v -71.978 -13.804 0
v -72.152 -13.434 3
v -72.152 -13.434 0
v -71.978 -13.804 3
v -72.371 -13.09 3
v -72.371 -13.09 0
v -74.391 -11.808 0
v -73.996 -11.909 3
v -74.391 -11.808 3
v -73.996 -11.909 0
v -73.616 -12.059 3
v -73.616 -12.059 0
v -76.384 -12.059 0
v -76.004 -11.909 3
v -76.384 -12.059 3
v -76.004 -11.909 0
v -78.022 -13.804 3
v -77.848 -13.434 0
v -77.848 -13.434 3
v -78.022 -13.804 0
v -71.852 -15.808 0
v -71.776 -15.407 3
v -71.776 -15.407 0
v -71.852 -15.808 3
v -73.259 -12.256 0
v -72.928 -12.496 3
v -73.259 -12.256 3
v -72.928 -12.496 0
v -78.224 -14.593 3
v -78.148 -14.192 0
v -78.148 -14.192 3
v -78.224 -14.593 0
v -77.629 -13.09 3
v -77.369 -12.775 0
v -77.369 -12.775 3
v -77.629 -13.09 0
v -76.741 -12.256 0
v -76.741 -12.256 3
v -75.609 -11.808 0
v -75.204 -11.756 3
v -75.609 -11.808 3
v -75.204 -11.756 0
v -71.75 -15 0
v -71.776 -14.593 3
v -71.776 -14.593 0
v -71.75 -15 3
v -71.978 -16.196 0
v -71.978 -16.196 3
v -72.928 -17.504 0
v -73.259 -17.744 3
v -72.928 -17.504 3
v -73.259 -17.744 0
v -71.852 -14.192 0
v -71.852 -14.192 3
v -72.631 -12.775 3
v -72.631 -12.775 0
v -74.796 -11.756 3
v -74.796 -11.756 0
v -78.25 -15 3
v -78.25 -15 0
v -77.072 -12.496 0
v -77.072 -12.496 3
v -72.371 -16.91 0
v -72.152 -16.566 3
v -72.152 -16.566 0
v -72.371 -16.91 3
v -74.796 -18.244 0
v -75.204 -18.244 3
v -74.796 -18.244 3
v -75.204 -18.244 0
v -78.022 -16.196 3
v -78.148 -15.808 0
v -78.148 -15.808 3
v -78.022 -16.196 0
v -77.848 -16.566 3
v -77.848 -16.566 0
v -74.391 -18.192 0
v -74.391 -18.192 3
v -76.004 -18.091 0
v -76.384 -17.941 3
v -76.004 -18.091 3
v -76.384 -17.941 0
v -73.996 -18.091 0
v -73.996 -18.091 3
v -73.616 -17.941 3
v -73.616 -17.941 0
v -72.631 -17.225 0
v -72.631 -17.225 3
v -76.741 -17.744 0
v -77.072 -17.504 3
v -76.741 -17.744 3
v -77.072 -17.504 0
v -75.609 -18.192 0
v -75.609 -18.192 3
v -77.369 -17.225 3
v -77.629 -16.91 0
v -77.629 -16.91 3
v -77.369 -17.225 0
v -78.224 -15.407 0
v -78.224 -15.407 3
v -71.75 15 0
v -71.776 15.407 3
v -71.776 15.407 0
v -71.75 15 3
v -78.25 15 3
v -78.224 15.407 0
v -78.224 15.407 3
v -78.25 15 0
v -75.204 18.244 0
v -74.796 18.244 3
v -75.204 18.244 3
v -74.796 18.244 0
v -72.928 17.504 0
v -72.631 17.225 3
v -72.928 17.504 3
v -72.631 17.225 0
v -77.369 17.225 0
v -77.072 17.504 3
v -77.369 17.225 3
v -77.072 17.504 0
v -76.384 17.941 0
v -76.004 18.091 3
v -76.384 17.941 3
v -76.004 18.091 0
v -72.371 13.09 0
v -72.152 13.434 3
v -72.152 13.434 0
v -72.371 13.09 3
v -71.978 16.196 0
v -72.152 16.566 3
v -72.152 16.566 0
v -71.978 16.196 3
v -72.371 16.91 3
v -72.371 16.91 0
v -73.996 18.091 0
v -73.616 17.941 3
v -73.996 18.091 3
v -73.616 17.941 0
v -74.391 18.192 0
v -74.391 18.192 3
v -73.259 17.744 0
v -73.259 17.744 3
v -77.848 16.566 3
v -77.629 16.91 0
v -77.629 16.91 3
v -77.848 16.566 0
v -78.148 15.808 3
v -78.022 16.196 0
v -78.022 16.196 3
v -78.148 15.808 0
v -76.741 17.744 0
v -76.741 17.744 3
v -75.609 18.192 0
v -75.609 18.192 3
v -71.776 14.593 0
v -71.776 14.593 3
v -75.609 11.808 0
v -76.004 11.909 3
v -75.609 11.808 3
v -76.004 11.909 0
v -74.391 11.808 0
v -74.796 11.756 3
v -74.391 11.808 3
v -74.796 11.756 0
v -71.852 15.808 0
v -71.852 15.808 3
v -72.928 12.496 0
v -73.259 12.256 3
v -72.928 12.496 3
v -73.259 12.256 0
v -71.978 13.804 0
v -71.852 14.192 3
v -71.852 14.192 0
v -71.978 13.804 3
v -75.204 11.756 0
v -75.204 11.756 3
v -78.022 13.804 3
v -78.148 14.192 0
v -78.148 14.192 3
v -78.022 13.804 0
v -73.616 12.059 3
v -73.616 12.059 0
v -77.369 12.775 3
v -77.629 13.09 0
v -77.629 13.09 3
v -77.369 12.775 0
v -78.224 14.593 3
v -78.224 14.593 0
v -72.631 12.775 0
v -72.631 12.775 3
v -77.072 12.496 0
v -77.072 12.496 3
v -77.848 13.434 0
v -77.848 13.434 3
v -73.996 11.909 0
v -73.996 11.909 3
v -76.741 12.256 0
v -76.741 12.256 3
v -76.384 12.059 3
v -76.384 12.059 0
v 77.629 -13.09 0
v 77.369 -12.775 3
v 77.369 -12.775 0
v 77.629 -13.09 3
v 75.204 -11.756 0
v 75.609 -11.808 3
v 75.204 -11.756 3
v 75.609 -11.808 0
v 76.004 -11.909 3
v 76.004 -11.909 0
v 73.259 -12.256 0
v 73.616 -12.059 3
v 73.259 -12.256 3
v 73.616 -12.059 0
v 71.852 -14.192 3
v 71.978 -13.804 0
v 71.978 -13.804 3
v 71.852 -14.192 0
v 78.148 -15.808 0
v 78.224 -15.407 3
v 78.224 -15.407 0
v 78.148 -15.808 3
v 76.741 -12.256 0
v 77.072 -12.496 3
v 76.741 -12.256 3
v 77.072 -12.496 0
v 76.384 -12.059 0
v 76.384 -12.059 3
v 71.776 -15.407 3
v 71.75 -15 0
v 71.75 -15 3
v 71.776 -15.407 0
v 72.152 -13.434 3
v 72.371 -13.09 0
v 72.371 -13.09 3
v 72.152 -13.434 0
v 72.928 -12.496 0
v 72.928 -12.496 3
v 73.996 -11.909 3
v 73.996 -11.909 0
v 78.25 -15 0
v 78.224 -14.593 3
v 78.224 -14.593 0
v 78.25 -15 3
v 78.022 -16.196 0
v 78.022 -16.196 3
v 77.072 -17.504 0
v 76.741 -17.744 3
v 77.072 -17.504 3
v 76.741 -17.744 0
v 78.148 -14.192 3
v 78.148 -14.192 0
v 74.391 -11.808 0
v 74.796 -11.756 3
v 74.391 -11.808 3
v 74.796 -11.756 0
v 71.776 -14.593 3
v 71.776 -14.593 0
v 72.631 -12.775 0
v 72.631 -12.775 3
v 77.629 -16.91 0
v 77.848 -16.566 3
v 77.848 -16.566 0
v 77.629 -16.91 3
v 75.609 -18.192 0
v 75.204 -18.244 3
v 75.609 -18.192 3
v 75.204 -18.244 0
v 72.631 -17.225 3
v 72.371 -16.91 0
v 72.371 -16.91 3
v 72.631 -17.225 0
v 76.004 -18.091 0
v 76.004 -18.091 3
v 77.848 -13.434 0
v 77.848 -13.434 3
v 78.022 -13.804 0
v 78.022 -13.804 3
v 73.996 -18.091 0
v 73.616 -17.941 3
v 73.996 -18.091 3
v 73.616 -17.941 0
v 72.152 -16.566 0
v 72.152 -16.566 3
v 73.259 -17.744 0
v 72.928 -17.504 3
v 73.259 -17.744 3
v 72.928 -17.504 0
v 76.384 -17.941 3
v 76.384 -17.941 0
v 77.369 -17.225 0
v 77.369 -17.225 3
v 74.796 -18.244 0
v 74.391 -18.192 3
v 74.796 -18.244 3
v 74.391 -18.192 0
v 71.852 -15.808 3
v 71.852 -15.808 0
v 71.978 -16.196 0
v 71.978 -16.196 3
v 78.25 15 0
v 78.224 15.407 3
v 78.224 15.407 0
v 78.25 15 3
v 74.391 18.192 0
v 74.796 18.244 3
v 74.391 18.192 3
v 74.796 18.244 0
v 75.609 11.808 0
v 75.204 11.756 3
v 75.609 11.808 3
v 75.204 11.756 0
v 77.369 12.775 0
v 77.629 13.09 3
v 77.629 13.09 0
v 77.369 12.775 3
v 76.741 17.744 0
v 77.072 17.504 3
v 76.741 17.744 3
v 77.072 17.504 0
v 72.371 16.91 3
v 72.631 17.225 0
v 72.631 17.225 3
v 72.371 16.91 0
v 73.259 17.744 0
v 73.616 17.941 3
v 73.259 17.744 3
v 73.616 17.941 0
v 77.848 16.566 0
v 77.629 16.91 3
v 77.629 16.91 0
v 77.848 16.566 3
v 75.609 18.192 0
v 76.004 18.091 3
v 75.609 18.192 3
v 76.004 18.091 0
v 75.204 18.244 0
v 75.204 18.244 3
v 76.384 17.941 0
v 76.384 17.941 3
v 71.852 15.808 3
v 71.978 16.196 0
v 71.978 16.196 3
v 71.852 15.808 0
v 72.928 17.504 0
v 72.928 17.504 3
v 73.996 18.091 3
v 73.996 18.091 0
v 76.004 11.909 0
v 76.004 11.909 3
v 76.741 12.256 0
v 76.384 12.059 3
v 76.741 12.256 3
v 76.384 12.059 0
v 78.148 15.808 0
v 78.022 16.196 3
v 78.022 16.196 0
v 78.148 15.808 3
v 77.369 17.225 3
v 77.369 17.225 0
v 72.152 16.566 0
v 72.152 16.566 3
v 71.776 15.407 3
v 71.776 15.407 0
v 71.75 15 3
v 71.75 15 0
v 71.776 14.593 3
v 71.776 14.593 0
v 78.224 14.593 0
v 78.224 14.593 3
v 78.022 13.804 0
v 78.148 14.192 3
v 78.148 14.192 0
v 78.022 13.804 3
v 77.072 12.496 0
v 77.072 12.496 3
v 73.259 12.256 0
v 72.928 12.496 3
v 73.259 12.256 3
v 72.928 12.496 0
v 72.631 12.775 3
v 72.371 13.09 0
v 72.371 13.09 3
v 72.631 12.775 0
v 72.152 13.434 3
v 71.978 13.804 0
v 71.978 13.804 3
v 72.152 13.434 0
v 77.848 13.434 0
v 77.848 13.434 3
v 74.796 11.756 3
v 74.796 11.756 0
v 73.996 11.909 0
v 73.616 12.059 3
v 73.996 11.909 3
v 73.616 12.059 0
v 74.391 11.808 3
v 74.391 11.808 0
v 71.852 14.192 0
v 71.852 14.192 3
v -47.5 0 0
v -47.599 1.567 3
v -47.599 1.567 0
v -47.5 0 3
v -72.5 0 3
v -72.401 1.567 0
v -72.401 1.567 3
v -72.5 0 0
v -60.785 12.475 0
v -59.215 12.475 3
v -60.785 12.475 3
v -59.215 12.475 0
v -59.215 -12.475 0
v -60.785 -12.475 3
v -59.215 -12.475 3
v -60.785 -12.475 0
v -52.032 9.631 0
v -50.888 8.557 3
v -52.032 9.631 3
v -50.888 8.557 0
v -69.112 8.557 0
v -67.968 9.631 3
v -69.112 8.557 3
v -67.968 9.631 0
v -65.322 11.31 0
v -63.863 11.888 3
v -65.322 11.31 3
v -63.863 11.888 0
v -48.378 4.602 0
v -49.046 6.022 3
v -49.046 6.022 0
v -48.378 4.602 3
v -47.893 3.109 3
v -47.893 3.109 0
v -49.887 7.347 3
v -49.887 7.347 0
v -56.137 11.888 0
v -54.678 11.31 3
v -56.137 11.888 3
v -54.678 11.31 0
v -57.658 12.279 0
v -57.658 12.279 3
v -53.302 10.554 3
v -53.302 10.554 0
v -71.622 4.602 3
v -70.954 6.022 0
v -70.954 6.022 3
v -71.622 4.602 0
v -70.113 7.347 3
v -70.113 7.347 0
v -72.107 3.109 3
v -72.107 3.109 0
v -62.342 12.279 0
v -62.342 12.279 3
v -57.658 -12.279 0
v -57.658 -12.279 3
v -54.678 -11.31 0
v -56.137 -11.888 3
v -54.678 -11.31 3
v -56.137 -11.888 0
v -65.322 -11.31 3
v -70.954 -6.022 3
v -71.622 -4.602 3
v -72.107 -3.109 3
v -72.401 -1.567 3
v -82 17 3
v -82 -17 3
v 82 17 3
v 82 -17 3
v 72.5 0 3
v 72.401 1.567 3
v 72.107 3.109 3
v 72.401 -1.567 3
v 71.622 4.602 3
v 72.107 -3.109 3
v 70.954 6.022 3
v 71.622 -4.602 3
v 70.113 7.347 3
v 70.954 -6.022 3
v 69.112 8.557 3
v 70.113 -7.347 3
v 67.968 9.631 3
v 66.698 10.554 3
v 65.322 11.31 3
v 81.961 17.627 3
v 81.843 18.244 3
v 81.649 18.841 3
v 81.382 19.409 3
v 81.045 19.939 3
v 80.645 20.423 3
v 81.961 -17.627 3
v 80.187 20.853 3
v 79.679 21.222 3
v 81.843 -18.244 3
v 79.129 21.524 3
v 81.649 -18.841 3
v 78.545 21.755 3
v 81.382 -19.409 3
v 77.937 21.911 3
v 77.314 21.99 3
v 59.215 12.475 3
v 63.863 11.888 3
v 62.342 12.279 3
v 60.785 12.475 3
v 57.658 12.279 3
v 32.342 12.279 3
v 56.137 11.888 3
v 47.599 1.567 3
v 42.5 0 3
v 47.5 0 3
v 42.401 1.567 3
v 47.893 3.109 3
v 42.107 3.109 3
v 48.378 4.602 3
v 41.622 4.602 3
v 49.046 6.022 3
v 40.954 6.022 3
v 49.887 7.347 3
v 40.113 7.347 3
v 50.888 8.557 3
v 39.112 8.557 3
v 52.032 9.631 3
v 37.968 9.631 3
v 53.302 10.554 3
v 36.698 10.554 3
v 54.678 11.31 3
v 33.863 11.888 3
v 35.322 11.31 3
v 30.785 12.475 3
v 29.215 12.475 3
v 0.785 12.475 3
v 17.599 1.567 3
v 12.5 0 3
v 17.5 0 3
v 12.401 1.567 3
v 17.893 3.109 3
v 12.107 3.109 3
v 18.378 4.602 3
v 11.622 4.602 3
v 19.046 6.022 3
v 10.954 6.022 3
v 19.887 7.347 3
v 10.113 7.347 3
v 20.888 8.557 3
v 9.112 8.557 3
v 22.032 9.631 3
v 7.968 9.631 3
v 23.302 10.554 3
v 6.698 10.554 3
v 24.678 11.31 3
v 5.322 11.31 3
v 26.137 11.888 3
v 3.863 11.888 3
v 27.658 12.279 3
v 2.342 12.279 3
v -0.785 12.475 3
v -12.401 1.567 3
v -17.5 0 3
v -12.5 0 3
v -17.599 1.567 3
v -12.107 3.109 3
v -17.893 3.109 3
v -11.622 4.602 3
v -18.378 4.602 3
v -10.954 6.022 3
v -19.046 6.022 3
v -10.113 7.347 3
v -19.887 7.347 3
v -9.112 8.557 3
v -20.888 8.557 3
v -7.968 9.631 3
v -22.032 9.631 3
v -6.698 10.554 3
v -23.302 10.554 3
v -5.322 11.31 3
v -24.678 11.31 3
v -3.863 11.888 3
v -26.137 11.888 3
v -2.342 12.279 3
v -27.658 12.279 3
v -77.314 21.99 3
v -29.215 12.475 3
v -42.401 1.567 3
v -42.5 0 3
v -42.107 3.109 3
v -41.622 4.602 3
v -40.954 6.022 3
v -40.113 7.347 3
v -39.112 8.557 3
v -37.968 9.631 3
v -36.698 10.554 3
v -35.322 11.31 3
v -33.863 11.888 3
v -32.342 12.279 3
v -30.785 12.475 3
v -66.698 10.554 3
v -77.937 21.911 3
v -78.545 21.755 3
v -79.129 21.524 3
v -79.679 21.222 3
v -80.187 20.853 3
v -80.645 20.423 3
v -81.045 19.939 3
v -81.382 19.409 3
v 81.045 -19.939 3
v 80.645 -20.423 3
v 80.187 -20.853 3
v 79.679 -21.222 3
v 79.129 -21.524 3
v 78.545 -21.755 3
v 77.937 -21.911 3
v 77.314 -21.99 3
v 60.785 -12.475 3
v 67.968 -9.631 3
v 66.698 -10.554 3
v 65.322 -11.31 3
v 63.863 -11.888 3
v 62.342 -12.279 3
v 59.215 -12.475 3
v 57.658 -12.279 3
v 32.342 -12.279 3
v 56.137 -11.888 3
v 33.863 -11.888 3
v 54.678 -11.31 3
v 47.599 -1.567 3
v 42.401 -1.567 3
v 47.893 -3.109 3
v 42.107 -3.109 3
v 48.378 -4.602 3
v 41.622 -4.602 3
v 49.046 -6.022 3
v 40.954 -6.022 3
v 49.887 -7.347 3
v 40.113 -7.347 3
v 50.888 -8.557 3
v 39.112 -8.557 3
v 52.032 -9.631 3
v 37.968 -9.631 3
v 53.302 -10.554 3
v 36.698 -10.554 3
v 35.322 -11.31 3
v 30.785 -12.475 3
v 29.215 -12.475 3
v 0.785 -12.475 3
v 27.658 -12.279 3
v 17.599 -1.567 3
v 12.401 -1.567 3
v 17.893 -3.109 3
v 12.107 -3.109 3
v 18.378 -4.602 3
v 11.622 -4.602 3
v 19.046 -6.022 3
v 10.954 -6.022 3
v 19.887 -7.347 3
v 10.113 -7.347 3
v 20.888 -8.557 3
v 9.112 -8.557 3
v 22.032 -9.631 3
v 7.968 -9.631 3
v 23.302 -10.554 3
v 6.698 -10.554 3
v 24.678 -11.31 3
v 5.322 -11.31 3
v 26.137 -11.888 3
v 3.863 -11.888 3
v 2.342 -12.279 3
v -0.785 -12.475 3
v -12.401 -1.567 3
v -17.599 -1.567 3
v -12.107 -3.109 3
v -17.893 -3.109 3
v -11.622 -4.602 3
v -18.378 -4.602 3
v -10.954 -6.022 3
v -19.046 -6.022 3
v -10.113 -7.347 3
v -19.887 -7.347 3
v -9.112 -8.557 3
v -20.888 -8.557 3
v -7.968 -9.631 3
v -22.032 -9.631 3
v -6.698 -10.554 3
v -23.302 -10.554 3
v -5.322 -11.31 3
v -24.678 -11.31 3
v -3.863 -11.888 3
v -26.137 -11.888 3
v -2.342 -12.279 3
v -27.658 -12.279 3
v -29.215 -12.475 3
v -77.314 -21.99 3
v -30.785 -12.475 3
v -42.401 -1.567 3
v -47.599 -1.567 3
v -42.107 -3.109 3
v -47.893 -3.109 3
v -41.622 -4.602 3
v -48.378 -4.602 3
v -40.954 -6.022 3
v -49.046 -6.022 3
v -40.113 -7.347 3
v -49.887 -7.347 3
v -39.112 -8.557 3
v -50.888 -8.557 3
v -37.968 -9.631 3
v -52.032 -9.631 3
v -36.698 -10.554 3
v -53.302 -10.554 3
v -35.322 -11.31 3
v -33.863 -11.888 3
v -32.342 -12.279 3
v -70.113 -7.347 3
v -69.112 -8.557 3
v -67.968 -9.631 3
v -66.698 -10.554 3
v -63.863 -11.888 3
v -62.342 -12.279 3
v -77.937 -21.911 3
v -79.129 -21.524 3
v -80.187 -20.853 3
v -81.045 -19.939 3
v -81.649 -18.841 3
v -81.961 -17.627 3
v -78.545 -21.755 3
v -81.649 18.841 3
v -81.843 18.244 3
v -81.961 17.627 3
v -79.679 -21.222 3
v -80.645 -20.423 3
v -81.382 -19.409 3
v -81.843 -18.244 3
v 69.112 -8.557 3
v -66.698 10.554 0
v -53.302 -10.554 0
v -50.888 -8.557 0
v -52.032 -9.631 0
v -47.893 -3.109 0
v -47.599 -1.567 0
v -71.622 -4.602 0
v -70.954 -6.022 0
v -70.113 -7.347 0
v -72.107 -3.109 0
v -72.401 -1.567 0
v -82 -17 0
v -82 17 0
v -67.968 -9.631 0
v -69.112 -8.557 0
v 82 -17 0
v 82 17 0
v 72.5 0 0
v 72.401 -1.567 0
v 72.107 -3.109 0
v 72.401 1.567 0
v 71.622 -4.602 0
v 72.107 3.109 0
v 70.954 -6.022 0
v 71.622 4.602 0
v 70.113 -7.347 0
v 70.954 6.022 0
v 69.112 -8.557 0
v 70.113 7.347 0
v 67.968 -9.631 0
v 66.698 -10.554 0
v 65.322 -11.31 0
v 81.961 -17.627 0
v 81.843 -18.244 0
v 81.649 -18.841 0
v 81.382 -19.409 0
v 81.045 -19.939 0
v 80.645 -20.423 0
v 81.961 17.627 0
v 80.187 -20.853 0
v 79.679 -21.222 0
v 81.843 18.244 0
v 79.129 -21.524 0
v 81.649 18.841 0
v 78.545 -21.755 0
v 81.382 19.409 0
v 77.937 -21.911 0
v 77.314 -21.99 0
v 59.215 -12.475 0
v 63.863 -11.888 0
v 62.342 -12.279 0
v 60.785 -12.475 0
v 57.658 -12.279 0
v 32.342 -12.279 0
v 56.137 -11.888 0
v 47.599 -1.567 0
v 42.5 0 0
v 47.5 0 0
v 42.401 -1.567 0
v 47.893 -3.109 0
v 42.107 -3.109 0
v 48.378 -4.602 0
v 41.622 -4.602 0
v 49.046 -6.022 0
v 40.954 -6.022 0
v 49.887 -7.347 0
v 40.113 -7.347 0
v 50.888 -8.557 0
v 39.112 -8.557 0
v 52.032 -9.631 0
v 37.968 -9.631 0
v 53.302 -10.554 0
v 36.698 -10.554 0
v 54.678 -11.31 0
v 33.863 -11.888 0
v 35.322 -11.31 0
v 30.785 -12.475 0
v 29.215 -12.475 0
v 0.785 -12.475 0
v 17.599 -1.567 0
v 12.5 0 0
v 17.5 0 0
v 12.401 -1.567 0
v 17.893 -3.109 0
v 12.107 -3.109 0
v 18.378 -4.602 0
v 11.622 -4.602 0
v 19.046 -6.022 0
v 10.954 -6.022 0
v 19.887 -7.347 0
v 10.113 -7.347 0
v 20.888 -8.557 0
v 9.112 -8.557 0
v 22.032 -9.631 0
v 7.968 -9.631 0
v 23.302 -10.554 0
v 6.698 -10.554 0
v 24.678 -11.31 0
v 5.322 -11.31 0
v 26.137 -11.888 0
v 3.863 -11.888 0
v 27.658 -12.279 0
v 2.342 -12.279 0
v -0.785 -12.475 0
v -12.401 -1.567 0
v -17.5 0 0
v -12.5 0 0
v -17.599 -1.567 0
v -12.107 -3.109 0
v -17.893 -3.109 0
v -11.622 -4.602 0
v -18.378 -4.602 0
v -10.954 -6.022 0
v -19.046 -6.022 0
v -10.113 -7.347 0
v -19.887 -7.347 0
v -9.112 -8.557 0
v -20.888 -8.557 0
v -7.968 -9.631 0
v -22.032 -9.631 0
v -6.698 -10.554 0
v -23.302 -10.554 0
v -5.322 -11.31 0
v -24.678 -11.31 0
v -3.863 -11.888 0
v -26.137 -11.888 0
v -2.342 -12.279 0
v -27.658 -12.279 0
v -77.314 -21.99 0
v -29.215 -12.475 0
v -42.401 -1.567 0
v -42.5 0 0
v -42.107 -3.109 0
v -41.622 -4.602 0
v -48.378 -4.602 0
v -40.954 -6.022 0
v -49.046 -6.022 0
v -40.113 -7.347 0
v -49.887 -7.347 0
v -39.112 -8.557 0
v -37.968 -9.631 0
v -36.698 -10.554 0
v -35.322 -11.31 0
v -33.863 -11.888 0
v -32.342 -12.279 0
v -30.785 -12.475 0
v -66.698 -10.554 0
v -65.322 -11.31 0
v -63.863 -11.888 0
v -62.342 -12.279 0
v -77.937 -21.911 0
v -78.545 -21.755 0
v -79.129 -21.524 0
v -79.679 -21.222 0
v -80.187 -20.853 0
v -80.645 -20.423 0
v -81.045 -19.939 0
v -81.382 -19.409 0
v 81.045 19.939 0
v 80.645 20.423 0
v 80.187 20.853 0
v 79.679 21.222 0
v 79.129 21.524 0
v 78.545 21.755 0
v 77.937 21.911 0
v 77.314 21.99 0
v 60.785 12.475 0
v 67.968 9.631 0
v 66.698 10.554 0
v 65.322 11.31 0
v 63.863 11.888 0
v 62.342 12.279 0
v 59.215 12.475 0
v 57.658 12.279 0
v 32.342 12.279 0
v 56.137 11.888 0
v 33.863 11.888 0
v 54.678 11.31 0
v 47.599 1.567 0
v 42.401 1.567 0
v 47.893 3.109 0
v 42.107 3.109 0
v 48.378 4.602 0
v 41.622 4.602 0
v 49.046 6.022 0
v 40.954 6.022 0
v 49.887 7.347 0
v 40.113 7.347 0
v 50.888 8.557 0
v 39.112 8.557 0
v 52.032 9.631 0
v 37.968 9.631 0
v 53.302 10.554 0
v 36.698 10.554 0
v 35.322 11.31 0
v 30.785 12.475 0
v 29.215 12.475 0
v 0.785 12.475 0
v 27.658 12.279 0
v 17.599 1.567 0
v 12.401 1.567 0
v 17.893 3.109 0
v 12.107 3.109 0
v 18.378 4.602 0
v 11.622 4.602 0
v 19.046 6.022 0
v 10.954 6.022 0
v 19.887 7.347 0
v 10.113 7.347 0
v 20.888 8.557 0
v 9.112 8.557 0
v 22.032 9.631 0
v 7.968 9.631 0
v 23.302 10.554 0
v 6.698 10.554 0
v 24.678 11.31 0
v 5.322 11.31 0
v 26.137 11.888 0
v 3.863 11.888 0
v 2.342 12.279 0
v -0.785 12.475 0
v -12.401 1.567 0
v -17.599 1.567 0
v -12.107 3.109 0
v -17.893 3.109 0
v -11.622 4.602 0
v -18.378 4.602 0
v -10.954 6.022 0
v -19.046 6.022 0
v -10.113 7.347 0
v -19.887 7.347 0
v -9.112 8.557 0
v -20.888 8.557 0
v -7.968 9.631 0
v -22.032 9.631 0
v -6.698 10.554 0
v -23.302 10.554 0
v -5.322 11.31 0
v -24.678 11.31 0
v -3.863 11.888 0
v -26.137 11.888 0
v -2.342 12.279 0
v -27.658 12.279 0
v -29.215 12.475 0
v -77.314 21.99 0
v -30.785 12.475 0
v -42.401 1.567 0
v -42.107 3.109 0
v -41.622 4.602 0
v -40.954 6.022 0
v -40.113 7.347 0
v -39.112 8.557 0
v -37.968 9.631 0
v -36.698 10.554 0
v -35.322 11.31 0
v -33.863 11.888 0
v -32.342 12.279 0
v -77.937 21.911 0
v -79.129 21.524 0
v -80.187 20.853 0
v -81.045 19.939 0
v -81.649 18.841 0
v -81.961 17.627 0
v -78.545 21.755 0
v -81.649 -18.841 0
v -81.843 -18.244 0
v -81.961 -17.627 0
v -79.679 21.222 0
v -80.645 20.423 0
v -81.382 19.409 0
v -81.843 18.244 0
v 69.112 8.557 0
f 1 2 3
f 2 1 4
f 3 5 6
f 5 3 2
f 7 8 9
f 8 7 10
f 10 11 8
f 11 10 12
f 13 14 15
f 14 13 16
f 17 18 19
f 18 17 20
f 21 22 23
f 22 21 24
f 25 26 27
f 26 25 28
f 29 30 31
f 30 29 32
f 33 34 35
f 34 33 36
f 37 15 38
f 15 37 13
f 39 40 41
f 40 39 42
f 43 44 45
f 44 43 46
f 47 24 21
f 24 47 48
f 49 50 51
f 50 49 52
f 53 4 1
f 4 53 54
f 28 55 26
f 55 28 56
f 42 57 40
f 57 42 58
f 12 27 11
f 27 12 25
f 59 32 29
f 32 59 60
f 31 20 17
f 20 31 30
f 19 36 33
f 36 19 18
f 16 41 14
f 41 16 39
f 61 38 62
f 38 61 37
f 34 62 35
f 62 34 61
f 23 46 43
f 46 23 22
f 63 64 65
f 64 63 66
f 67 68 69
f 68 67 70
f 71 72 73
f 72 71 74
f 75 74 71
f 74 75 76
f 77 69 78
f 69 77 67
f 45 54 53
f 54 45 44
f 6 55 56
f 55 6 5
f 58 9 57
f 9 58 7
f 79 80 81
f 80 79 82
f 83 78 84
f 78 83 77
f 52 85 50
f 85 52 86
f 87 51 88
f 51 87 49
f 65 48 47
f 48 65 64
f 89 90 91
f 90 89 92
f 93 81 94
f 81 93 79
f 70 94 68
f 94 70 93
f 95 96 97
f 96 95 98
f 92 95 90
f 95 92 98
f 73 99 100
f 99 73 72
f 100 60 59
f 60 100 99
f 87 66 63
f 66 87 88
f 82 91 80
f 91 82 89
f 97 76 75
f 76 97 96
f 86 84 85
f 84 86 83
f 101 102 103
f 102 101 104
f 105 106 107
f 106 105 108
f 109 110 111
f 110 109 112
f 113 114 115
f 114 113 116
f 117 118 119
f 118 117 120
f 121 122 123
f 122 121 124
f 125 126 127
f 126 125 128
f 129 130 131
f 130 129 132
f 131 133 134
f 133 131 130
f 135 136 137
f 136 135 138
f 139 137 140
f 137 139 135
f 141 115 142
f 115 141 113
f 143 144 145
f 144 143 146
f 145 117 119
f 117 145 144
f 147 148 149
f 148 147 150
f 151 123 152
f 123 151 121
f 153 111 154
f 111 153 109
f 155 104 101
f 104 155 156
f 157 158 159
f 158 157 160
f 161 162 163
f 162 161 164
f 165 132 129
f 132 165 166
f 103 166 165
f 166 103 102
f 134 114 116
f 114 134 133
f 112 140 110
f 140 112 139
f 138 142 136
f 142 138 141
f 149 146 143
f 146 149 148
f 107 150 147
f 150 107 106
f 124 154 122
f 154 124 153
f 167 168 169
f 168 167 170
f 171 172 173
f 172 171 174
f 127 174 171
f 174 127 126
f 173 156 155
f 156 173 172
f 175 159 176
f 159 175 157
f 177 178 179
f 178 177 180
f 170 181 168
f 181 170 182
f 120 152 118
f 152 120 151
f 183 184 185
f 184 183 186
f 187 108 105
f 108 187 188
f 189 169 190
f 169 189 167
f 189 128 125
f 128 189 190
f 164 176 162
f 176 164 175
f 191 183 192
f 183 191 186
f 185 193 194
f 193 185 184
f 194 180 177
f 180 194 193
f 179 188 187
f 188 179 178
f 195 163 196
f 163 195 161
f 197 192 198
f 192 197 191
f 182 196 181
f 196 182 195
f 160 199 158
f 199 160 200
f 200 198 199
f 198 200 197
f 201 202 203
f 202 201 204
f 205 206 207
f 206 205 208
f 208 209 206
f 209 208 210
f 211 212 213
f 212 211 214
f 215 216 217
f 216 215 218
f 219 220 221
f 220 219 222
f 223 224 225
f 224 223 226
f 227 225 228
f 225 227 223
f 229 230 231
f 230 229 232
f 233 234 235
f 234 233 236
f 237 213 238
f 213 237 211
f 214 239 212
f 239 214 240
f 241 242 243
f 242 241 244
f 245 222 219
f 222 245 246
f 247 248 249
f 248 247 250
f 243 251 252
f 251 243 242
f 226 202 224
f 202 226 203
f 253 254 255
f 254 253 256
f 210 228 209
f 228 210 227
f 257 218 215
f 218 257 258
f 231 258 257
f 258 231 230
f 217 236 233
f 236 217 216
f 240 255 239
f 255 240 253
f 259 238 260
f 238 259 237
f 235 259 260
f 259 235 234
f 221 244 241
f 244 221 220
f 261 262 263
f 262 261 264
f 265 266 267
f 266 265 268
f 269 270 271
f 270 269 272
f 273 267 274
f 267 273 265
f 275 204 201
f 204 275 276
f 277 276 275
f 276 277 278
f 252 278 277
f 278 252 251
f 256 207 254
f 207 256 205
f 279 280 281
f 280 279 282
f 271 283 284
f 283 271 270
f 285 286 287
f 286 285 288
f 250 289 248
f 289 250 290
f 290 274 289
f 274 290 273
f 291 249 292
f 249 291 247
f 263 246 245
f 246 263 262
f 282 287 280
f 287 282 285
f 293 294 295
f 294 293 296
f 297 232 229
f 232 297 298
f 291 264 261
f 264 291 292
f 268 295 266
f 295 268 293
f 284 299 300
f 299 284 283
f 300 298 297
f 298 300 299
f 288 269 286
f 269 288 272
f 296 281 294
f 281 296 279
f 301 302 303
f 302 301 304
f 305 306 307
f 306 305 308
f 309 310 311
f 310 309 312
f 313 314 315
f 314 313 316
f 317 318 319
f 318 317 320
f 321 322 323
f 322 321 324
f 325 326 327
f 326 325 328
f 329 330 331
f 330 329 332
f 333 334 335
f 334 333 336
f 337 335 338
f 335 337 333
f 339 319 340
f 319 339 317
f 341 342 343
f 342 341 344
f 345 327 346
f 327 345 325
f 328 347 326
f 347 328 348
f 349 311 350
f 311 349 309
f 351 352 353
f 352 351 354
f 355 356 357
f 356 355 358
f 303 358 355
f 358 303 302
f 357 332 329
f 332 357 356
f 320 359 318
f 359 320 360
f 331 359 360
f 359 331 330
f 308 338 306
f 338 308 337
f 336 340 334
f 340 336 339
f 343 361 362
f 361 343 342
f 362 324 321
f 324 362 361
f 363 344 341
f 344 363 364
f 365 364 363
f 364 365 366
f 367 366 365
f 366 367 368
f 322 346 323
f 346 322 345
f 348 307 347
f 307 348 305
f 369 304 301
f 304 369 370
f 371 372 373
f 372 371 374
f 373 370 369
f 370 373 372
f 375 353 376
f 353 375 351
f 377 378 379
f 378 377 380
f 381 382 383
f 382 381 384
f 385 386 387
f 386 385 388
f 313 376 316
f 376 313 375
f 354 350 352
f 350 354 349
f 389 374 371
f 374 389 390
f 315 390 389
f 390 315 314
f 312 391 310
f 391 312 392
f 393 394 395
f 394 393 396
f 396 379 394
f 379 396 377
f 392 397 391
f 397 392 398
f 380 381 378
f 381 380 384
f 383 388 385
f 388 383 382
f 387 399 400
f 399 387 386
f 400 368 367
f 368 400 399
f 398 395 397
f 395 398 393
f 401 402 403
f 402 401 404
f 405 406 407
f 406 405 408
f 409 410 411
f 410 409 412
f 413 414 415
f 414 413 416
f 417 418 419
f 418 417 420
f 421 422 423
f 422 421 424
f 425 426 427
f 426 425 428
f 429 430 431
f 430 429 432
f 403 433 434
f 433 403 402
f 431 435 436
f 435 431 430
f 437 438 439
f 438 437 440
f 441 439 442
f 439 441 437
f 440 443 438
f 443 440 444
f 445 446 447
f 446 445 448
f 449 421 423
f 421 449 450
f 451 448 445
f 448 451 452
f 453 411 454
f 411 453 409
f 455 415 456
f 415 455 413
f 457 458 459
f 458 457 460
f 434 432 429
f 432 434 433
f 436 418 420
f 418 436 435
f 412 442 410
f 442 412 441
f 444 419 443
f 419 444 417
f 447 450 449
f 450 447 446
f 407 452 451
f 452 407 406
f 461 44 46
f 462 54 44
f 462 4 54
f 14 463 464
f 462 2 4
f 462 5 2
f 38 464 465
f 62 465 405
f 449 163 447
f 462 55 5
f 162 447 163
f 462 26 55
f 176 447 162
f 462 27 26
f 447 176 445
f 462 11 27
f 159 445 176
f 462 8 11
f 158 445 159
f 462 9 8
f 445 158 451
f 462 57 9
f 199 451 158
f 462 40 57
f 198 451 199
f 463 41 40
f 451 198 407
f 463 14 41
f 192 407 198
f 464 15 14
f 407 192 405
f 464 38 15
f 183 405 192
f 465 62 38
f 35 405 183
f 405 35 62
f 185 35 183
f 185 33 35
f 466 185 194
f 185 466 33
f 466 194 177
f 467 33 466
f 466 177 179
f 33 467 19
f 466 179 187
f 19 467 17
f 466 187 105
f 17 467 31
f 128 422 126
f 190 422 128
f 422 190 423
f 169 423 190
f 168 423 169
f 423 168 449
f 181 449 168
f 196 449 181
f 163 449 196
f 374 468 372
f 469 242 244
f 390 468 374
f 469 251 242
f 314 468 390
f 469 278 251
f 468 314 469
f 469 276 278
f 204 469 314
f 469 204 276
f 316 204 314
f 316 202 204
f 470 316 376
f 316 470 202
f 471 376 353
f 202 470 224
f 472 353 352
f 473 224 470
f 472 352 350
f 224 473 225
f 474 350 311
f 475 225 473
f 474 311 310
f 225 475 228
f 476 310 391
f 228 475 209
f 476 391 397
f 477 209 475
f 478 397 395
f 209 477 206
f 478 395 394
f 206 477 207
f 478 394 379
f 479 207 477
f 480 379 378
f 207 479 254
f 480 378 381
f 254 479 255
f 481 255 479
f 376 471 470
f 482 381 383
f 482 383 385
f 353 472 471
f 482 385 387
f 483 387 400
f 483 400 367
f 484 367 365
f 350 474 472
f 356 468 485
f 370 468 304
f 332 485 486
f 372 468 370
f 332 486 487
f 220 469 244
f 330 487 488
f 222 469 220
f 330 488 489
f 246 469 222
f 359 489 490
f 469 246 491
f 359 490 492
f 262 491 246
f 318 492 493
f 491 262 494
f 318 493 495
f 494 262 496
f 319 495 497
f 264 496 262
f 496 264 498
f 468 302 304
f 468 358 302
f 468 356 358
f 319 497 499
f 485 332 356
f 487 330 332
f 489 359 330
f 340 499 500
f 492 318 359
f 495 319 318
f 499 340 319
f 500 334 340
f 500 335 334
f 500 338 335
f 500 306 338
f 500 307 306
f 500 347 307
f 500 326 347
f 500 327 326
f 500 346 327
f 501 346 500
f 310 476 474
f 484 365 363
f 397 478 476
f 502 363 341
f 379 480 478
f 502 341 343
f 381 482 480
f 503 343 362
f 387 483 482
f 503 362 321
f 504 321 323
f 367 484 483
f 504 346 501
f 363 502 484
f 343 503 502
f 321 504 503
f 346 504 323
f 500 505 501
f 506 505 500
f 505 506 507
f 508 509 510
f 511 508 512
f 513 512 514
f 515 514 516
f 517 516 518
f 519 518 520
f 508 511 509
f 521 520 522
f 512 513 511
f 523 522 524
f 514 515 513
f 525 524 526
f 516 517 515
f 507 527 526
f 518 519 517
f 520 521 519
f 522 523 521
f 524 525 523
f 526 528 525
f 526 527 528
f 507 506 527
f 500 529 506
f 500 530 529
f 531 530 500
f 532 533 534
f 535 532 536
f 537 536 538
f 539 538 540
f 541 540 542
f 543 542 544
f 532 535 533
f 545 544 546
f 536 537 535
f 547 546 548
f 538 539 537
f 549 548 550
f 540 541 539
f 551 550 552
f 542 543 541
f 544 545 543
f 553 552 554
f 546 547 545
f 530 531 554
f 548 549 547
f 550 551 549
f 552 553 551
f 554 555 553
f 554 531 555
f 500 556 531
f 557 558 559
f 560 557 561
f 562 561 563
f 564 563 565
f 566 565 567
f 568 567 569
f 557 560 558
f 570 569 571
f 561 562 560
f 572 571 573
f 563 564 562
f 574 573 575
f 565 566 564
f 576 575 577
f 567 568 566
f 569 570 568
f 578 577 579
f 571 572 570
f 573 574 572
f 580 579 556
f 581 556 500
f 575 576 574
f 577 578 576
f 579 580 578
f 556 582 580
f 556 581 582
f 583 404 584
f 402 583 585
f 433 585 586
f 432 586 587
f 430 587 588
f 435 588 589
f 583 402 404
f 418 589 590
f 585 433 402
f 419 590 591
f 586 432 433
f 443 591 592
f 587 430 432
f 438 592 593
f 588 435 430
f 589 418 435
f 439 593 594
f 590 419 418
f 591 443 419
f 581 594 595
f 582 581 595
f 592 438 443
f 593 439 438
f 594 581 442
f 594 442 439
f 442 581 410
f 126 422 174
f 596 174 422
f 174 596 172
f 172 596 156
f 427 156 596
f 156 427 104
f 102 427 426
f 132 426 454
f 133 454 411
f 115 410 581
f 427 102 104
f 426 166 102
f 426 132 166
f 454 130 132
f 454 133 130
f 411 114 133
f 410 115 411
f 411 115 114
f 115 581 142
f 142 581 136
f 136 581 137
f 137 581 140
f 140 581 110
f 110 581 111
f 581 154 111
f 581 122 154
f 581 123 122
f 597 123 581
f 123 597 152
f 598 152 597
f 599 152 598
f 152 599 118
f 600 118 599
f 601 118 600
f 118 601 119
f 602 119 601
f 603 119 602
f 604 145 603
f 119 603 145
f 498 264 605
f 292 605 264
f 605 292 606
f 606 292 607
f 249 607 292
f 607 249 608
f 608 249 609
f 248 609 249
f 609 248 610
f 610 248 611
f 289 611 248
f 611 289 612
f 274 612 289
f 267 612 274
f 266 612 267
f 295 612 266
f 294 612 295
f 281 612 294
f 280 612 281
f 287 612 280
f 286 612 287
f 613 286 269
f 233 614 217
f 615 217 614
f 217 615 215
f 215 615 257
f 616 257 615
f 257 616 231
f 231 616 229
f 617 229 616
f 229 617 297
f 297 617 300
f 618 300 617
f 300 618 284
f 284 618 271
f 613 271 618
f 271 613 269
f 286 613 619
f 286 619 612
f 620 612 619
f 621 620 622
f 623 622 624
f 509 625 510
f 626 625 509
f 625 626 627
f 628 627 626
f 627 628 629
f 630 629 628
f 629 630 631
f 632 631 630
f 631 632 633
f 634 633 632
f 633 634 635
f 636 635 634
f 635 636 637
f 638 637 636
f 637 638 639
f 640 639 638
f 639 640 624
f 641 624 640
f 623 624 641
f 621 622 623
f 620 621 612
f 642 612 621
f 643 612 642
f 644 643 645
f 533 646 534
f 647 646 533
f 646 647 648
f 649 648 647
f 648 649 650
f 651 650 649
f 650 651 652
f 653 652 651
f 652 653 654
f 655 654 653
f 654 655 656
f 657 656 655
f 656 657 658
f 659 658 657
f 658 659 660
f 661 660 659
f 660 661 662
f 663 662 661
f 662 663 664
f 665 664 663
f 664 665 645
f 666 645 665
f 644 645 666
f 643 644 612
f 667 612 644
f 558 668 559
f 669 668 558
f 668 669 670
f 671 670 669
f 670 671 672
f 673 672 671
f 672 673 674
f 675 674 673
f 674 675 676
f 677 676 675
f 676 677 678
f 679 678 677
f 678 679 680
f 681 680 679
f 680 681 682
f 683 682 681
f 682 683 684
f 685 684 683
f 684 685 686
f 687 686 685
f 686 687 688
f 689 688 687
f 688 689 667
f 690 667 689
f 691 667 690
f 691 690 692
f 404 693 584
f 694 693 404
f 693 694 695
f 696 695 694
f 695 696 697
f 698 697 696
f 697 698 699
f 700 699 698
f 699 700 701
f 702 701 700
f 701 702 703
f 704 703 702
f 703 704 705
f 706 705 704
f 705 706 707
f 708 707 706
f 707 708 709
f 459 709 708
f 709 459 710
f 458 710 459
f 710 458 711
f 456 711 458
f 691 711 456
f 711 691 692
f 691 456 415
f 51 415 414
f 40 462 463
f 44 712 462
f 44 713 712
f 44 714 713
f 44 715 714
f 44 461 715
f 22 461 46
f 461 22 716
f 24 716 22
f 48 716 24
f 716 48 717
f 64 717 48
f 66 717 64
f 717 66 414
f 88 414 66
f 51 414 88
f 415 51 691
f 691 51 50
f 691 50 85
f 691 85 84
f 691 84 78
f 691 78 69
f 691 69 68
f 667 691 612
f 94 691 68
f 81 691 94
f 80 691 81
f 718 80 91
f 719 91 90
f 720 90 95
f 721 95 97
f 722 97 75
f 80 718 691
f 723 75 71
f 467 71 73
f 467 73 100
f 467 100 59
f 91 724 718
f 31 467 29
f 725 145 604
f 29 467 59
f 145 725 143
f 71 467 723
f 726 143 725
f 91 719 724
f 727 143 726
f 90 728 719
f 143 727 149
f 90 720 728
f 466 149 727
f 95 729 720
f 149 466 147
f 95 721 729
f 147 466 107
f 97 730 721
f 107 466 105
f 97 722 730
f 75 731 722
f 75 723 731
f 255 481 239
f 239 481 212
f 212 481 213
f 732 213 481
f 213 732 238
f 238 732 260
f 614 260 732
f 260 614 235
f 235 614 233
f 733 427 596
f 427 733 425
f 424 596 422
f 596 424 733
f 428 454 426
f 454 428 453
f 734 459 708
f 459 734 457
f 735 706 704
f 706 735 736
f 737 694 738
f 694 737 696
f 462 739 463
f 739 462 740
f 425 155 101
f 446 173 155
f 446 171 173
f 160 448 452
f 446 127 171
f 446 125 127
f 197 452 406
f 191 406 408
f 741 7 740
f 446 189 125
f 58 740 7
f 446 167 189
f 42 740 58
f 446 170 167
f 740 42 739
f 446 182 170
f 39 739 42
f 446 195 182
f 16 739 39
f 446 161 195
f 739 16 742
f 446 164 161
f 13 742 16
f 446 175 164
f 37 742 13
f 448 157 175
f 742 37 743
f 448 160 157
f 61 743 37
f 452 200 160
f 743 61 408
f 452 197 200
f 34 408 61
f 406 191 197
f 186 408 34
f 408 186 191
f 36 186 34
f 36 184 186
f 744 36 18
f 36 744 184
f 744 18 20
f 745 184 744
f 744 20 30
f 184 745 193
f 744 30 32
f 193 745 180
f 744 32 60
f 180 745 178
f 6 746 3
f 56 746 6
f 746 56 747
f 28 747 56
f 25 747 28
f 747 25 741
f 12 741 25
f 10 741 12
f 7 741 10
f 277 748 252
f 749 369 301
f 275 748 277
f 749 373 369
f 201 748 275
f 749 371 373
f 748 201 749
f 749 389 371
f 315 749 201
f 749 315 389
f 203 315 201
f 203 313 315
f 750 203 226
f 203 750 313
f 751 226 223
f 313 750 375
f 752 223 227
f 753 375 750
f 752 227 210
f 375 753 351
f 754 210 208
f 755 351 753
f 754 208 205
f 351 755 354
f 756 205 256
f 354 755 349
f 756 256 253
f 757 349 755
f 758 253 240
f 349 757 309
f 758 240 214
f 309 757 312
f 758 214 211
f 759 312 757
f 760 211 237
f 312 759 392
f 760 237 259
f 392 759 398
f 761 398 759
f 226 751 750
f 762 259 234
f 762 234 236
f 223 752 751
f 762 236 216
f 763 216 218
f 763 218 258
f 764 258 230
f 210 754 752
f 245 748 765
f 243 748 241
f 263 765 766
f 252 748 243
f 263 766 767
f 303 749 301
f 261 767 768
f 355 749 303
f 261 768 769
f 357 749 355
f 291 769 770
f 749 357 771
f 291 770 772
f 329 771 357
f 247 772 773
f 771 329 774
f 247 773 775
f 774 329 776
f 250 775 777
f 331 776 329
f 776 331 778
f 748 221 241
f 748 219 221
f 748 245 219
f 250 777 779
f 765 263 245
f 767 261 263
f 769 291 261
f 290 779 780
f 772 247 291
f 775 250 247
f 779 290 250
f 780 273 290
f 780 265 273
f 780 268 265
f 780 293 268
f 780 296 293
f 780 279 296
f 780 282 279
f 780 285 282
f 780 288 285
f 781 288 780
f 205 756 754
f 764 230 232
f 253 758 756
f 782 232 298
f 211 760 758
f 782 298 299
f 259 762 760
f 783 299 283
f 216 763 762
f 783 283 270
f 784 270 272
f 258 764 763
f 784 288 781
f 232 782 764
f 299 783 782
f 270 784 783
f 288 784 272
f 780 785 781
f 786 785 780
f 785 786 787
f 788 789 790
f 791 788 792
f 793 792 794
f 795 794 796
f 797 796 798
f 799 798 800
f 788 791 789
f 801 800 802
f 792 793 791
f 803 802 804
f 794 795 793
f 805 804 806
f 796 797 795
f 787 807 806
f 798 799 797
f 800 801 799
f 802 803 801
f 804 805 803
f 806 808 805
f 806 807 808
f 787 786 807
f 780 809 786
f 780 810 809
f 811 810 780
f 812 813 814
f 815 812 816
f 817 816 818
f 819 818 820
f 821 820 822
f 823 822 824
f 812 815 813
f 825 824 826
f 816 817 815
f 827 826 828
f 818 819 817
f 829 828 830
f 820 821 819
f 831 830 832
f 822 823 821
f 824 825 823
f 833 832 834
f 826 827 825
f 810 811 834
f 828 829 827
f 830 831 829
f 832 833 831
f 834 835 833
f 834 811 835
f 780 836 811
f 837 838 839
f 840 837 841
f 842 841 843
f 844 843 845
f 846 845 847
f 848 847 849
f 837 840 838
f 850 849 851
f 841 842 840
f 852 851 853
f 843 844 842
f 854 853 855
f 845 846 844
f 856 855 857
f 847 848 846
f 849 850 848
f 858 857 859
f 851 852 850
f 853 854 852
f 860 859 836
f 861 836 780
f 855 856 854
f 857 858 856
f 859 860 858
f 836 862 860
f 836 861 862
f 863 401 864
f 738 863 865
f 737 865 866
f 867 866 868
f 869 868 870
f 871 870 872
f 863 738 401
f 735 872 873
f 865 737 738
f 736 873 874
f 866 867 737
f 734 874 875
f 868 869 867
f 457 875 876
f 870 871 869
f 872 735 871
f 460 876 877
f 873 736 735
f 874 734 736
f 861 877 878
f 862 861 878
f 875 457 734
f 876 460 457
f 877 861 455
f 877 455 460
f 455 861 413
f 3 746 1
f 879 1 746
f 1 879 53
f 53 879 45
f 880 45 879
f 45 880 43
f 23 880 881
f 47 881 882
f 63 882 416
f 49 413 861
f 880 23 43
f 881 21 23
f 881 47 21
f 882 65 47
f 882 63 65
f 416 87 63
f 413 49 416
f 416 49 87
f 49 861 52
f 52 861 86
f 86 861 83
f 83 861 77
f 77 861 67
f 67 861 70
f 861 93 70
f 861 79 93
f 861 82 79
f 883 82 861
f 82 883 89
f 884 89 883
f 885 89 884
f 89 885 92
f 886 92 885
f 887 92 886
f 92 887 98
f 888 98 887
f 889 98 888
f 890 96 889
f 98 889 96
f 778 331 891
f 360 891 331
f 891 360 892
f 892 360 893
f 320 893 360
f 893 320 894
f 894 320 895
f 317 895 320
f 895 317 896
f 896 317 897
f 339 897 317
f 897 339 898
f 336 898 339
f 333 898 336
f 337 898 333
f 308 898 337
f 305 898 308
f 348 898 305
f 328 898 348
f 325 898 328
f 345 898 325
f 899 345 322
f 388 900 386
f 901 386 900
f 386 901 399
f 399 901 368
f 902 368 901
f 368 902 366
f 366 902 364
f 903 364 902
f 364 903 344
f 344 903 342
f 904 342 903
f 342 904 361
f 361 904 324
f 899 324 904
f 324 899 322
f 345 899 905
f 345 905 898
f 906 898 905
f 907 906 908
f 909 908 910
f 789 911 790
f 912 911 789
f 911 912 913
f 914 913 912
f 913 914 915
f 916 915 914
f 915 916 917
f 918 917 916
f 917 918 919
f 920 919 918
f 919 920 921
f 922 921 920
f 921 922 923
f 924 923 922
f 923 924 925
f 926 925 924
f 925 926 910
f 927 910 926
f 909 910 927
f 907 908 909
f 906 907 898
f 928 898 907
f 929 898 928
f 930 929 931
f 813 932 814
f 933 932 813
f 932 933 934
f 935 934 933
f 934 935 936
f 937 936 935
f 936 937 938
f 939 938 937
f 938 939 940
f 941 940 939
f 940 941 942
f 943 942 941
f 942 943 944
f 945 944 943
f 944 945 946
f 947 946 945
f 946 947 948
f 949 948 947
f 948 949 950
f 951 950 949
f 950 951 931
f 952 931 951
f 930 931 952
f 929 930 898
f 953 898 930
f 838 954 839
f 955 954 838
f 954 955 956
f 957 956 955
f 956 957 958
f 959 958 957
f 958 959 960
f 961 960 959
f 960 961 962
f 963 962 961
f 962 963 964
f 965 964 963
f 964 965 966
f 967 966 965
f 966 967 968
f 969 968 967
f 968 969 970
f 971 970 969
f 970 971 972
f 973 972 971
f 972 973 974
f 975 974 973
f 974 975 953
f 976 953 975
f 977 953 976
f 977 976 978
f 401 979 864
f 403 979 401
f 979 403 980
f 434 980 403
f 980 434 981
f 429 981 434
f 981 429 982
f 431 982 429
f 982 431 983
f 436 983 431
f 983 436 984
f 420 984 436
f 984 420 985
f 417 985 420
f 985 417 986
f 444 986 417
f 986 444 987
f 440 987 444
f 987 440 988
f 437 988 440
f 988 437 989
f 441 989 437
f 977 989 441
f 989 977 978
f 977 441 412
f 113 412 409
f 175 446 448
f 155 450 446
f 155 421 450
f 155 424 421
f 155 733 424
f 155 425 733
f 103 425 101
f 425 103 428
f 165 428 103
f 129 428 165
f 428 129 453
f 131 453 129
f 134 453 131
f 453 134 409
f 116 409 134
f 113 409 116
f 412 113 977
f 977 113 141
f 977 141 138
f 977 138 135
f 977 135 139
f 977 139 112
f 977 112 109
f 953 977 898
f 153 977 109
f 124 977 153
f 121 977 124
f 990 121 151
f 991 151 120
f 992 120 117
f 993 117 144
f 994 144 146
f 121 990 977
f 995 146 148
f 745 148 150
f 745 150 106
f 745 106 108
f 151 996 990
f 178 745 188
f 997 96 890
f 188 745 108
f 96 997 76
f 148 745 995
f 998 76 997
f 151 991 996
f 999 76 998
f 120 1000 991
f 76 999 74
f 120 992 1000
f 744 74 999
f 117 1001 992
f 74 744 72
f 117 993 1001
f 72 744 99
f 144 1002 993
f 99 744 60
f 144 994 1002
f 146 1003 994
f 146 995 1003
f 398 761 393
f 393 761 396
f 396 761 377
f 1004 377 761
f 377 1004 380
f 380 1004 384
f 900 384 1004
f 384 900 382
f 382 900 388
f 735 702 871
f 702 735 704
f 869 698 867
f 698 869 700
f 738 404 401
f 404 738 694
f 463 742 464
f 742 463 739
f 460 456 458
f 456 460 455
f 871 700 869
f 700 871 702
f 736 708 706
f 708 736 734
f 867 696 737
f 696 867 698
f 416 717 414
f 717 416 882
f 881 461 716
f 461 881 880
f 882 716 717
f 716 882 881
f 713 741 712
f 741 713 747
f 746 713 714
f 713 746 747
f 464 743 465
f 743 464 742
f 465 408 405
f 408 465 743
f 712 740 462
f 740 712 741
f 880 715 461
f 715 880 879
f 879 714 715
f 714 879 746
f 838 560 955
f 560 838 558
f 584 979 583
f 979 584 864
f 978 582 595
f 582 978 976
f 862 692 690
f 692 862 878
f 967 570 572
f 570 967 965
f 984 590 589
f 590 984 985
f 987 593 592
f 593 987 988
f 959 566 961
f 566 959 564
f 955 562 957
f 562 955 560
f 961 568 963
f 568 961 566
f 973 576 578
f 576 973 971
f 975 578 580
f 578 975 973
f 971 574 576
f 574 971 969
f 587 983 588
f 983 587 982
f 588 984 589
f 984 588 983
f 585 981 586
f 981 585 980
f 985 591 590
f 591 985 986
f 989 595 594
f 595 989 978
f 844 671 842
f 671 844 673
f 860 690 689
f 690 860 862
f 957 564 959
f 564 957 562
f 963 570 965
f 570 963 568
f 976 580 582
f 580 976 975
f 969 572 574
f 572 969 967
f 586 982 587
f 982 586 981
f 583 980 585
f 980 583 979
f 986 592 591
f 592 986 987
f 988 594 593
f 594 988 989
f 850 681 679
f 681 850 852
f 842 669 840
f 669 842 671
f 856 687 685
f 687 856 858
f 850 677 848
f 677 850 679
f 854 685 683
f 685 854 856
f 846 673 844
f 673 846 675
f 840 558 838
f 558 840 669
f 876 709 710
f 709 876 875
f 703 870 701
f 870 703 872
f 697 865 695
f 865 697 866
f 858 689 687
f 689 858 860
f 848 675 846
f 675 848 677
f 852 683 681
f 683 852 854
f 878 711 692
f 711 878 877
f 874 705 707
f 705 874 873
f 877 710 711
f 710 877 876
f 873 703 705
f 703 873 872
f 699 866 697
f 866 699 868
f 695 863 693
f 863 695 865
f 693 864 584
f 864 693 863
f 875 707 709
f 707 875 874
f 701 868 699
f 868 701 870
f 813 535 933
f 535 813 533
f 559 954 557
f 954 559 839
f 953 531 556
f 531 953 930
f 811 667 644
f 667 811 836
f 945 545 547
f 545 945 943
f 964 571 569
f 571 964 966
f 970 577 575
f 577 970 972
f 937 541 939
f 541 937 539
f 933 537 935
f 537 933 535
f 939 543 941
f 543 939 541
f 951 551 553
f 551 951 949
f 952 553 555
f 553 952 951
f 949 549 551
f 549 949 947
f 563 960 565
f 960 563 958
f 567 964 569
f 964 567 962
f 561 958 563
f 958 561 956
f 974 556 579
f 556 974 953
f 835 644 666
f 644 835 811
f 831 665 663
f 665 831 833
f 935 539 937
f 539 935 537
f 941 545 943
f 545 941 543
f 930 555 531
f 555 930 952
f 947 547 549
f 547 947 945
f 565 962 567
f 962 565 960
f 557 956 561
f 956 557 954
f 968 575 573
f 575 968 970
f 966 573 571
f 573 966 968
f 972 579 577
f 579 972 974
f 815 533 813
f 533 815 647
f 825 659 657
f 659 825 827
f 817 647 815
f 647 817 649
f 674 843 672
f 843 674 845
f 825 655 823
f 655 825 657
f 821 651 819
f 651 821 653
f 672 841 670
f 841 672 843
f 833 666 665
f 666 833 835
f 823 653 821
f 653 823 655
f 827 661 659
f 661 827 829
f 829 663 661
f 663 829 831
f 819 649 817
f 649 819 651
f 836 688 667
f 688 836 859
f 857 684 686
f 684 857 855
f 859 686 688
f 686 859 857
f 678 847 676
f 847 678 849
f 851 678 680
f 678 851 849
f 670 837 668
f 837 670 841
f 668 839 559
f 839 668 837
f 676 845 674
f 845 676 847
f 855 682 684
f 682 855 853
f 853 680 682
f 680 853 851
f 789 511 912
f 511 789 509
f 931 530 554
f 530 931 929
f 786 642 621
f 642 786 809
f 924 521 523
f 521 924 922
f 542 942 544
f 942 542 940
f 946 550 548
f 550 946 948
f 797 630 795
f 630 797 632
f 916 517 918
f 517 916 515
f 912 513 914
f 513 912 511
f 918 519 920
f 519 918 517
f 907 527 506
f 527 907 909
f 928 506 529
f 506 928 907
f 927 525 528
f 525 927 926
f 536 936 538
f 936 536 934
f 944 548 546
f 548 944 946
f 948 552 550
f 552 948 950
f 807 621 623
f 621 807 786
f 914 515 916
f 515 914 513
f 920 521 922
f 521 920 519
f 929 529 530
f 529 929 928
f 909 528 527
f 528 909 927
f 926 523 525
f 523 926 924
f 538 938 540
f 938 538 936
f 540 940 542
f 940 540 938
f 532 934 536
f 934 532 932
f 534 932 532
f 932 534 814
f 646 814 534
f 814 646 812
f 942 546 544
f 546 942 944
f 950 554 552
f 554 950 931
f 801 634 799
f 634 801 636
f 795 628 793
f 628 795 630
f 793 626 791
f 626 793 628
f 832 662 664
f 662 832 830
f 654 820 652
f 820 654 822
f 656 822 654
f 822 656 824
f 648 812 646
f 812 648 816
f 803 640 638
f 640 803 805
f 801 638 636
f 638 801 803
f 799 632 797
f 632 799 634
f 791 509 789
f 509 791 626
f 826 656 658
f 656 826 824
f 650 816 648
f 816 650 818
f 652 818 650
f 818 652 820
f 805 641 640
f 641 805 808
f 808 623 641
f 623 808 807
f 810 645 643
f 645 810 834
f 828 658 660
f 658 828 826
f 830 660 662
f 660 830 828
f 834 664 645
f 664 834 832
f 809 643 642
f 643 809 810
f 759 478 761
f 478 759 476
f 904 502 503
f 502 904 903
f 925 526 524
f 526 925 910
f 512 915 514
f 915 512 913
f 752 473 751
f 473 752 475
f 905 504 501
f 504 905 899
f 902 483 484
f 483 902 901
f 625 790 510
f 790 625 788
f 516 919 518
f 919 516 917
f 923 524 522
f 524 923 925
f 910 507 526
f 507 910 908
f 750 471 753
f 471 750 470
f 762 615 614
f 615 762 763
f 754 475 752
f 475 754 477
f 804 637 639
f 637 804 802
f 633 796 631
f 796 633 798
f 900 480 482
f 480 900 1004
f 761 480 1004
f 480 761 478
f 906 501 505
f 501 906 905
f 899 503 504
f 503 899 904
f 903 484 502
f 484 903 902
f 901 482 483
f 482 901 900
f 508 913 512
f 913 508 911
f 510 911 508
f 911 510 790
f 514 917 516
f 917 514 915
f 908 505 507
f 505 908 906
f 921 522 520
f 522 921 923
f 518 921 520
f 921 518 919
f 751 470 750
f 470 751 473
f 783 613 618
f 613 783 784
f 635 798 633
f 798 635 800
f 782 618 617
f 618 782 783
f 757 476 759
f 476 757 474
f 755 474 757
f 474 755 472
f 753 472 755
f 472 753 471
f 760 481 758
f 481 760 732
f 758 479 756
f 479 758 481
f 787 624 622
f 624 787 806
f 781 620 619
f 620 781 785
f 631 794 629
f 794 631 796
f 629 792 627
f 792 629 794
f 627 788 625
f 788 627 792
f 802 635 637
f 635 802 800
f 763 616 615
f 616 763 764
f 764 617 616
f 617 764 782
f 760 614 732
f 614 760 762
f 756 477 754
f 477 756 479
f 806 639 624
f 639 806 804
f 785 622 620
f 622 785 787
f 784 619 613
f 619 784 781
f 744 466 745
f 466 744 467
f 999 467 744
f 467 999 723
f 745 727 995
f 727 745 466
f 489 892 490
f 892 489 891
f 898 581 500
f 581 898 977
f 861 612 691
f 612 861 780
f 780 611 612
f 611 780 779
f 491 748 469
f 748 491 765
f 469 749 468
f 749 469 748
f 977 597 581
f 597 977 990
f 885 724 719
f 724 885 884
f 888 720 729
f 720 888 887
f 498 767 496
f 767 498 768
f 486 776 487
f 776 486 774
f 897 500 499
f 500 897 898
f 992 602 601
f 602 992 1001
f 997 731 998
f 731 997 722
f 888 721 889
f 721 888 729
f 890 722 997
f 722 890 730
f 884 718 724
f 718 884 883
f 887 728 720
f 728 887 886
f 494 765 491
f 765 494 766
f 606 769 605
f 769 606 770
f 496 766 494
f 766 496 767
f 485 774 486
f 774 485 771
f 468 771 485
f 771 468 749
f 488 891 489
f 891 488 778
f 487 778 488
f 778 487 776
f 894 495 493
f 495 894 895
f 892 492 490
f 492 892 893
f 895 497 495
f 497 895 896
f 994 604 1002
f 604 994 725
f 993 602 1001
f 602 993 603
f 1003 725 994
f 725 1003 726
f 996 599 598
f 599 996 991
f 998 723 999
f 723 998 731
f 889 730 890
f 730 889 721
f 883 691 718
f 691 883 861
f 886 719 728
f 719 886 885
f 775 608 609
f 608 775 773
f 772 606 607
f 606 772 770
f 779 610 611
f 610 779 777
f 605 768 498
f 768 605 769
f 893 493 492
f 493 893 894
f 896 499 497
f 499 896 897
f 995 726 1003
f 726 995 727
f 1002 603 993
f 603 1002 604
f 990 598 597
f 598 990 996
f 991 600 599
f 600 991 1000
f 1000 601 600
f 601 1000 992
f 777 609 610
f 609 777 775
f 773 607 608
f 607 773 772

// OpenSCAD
$fn = 50;


difference() {
	union() {
		hull() {
			translate(v = [-77.0000000000, 17.0000000000, 0]) {
				cylinder(h = 3, r = 5);
			}
			translate(v = [77.0000000000, 17.0000000000, 0]) {
				cylinder(h = 3, r = 5);
			}
			translate(v = [-77.0000000000, -17.0000000000, 0]) {
				cylinder(h = 3, r = 5);
			}
			translate(v = [77.0000000000, -17.0000000000, 0]) {
				cylinder(h = 3, r = 5);
			}
		}
	}
	union() {
		#translate(v = [-75.0000000000, -15.0000000000, -100.0000000000]) {
			cylinder(h = 200, r = 3.2500000000);
		}
		#translate(v = [-75.0000000000, 15.0000000000, -100.0000000000]) {
			cylinder(h = 200, r = 3.2500000000);
		}
		#translate(v = [75.0000000000, -15.0000000000, -100.0000000000]) {
			cylinder(h = 200, r = 3.2500000000);
		}
		#translate(v = [75.0000000000, 15.0000000000, -100.0000000000]) {
			cylinder(h = 200, r = 3.2500000000);
		}
		#translate(v = [-60.0000000000, 0, 0]) {
			cylinder(h = 3, r = 12.5000000000);
		}
		#translate(v = [-30.0000000000, 0, 0]) {
			cylinder(h = 3, r = 12.5000000000);
		}
		#cylinder(h = 3, r = 12.5000000000);
		#translate(v = [30.0000000000, 0, 0]) {
			cylinder(h = 3, r = 12.5000000000);
		}
		#translate(v = [60.0000000000, 0, 0]) {
			cylinder(h = 3, r = 12.5000000000);
		}
	}
}
